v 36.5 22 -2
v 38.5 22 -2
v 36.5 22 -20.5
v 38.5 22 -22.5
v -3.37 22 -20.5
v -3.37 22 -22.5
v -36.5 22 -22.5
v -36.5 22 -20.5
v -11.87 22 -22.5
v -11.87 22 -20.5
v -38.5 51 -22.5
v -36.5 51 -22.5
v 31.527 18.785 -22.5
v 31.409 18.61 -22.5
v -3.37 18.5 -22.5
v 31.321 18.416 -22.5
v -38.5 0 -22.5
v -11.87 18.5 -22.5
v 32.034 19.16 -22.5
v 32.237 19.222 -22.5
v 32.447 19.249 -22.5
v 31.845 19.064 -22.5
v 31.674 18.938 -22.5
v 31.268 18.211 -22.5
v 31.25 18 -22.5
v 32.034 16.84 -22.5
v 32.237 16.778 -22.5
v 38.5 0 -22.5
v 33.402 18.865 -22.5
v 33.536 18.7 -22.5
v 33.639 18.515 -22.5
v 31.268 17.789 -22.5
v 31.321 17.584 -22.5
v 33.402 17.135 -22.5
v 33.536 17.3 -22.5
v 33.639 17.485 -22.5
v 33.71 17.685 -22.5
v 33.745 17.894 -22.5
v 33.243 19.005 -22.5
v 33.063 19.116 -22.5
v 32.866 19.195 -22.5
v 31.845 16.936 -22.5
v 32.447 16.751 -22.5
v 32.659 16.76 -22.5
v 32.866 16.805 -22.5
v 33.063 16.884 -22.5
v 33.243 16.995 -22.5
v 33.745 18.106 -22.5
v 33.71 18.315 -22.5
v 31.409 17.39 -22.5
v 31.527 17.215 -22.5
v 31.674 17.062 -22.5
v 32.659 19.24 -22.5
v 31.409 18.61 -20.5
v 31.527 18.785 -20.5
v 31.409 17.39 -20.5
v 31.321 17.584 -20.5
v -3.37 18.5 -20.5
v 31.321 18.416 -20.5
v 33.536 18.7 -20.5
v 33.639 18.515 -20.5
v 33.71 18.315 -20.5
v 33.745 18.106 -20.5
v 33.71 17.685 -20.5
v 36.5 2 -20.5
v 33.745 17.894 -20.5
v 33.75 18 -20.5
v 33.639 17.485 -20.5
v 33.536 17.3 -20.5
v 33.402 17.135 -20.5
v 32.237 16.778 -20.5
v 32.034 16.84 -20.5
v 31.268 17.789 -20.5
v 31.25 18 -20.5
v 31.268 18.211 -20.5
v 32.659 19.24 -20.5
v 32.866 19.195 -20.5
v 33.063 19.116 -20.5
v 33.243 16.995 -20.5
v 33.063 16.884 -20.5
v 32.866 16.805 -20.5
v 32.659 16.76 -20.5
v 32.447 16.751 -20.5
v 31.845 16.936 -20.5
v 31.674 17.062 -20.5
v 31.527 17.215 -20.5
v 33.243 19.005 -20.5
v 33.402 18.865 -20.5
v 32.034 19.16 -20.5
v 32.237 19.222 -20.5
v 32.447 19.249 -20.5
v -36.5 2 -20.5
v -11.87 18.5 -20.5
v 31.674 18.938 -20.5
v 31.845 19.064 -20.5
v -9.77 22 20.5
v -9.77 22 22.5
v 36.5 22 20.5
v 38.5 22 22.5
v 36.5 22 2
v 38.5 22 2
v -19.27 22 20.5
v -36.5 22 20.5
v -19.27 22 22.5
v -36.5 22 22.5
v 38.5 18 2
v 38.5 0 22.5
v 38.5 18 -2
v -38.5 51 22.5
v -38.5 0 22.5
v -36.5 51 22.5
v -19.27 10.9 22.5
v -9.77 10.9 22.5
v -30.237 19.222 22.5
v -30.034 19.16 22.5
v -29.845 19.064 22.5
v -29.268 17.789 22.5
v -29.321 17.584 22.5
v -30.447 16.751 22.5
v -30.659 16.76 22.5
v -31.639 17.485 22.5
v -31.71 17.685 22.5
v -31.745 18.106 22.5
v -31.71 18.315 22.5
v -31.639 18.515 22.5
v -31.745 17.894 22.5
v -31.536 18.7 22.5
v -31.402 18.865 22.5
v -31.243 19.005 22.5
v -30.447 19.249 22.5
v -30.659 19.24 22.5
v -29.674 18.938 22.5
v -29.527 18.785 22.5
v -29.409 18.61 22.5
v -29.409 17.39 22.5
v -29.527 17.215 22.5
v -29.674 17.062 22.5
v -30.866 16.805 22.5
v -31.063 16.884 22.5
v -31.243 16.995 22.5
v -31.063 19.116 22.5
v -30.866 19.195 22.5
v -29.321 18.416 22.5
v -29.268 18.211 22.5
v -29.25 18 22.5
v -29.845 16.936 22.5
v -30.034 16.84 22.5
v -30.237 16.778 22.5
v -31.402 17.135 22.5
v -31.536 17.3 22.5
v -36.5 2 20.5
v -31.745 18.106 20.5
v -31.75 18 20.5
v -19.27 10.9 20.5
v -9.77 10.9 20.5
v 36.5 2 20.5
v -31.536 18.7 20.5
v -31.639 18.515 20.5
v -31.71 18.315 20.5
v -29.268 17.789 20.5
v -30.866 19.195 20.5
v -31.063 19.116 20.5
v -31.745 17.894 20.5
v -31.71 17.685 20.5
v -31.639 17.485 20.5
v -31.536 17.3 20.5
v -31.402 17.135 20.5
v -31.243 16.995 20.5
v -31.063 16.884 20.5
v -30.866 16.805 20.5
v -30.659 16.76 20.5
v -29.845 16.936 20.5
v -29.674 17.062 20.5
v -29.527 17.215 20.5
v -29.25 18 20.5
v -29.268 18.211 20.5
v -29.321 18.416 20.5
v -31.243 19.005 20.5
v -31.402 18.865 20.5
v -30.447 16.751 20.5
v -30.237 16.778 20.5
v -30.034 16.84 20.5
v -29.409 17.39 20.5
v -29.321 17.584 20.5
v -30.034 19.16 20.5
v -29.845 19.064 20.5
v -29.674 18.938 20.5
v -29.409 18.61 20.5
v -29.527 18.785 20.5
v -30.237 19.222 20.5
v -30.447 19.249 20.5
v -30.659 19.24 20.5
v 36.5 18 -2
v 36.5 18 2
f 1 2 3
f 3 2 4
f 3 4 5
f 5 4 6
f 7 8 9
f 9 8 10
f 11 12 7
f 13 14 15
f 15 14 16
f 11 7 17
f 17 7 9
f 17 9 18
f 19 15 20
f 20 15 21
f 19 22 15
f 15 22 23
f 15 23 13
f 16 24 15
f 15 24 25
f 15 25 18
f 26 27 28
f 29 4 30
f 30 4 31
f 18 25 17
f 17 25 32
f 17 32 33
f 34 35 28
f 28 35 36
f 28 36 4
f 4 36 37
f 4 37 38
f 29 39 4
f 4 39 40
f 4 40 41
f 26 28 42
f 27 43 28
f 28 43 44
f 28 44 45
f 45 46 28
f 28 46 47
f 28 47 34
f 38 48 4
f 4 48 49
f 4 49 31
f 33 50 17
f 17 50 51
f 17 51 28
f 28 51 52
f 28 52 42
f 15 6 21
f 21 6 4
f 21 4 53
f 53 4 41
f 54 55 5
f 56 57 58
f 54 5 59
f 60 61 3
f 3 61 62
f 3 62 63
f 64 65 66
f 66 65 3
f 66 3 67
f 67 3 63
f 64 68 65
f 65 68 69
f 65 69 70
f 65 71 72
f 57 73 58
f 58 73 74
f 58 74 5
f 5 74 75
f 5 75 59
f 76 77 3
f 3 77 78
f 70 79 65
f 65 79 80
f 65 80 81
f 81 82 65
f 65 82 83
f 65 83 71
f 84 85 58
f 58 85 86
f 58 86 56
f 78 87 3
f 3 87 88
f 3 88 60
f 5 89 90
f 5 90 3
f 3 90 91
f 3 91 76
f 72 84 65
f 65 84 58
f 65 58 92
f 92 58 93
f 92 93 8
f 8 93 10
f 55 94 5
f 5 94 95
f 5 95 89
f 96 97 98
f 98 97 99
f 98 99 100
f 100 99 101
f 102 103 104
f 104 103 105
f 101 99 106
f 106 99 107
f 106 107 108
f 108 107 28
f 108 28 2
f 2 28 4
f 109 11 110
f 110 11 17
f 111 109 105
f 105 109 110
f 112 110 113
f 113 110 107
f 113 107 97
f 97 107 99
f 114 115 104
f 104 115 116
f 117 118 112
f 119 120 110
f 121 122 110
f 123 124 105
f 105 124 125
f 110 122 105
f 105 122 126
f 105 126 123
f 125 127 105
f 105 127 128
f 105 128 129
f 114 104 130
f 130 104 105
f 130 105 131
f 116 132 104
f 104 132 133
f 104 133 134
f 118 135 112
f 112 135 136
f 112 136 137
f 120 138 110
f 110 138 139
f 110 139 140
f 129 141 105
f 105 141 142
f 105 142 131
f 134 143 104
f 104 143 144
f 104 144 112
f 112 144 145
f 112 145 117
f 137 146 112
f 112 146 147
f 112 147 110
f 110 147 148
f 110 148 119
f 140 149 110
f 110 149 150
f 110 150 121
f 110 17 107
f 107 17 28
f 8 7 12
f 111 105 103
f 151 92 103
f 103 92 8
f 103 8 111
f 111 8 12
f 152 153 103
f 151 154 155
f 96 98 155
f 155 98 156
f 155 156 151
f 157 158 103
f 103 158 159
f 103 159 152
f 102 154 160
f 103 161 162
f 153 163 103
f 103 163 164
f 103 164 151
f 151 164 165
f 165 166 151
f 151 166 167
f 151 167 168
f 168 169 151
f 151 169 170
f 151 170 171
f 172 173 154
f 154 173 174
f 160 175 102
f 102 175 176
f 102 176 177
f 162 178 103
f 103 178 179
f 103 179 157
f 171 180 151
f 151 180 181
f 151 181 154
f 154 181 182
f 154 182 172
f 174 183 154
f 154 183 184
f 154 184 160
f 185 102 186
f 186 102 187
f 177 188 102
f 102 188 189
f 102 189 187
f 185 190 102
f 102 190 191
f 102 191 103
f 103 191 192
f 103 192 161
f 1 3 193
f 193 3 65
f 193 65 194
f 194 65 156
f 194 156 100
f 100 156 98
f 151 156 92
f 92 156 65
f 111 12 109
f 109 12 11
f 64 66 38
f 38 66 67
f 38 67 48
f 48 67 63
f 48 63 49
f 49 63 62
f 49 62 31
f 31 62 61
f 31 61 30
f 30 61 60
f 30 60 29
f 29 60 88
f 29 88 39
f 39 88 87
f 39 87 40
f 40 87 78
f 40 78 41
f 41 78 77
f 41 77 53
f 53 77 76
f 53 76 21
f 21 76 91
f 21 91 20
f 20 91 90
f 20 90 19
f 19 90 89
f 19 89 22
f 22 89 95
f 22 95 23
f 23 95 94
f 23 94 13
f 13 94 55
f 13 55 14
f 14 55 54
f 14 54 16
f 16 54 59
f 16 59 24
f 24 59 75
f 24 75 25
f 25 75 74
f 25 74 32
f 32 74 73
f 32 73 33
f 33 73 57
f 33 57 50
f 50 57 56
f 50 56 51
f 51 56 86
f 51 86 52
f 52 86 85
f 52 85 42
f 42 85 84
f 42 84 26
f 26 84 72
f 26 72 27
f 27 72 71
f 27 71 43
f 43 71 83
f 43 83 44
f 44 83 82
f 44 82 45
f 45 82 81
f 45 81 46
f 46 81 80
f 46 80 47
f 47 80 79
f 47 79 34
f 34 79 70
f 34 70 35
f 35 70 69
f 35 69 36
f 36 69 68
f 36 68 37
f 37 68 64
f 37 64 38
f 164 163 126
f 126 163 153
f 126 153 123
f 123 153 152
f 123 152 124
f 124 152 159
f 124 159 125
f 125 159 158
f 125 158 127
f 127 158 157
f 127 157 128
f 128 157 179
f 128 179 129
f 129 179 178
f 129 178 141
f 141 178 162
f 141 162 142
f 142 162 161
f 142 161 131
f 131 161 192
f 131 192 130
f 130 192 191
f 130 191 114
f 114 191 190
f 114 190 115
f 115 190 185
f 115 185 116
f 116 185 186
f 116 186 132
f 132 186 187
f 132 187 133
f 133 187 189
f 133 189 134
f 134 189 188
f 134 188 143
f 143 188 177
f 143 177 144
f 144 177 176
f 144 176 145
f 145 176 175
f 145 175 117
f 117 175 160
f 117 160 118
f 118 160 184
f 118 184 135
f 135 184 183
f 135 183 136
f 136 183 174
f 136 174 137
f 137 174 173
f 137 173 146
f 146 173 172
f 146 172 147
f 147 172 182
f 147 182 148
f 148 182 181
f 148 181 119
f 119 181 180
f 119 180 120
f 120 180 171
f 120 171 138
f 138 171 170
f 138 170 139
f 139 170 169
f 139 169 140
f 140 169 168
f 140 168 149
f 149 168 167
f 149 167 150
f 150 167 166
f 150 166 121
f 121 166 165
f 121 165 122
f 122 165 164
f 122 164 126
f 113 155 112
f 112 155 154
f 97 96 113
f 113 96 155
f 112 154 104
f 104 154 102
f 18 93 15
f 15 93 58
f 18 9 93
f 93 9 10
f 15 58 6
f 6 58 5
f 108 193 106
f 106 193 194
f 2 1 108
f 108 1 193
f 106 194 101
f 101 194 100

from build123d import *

# Parameters (mm, degrees)
SKETCH1_W           = 77
SKETCH1_H           = 45
BOSS_EXTRUDE1_DEPTH = 2
SKETCH2_W           = 77
SKETCH2_H           = 45
SKETCH2_W_2         = 73
SKETCH2_H_2         = 41
BOSS_EXTRUDE2_DEPTH = 20
SKETCH3_W           = 2
SKETCH3_H           = 45
BOSS_EXTRUDE3_DEPTH = 29
SKETCH4_R           = 1.25
CUT_EXTRUDE1_DEPTH  = 2
SKETCH5_R           = 1.25
CUT_EXTRUDE2_DEPTH  = 2
SKETCH6_W           = 9.5
SKETCH6_H           = 11.1
CUT_EXTRUDE3_DEPTH  = 2
SKETCH7_W           = 8.5
SKETCH7_H           = 3.5
CUT_EXTRUDE4_DEPTH  = 2
SKETCH8_W           = 4
SKETCH8_H           = 4
CUT_EXTRUDE5_DEPTH  = 2


with BuildPart() as part:
    # Sketch1 → Boss-Extrude1 (new body)
    with BuildSketch(Plane(origin=(0, 0, 0), x_dir=(1, 0, 0), z_dir=(0, 1, 0))):
        Rectangle(SKETCH1_W, SKETCH1_H)
    extrude(amount=BOSS_EXTRUDE1_DEPTH)

    # Sketch2 → Boss-Extrude2 (add)
    with BuildSketch(Plane(origin=(0, 2, 0), x_dir=(1, 0, 0), z_dir=(0, 1, 0))):
        Rectangle(SKETCH2_W, SKETCH2_H)
        Rectangle(SKETCH2_W_2, SKETCH2_H_2, mode=Mode.SUBTRACT)
    extrude(amount=BOSS_EXTRUDE2_DEPTH)

    # Sketch3 → Boss-Extrude3 (add)
    with BuildSketch(Plane(origin=(0, 22, 0), x_dir=(1, 0, 0), z_dir=(0, 1, 0))):
        with Locations((-37.5, 0)):
            Rectangle(SKETCH3_W, SKETCH3_H)
    extrude(amount=BOSS_EXTRUDE3_DEPTH)

    # Sketch4 → Cut-Extrude1 (cut)
    with BuildSketch(Plane(origin=(0, 0, -22.5), x_dir=(-1, 0, 0), z_dir=(0, 0, -1))):
        with Locations((-32.5, 18)):
            Circle(SKETCH4_R)
    extrude(amount=-CUT_EXTRUDE1_DEPTH, mode=Mode.SUBTRACT)

    # Sketch5 → Cut-Extrude2 (cut)
    with BuildSketch(Plane.XY.offset(22.5)):
        with Locations((-30.5, 18)):
            Circle(SKETCH5_R)
    extrude(amount=-CUT_EXTRUDE2_DEPTH, mode=Mode.SUBTRACT)

    # Sketch6 → Cut-Extrude3 (cut)
    with BuildSketch(Plane.XY.offset(22.5)):
        with Locations((-14.52, 16.45)):
            Rectangle(SKETCH6_W, SKETCH6_H)
    extrude(amount=-CUT_EXTRUDE3_DEPTH, mode=Mode.SUBTRACT)

    # Sketch7 → Cut-Extrude4 (cut)
    with BuildSketch(Plane(origin=(0, 0, -22.5), x_dir=(-1, 0, 0), z_dir=(0, 0, -1))):
        with Locations((7.62, 20.25)):
            Rectangle(SKETCH7_W, SKETCH7_H)
    extrude(amount=-CUT_EXTRUDE4_DEPTH, mode=Mode.SUBTRACT)

    # Sketch8 → Cut-Extrude5 (cut)
    with BuildSketch(Plane(origin=(38.5, 0, 0), x_dir=(0, 0, -1), z_dir=(1, 0, 0))):
        with Locations((0, 20)):
            Rectangle(SKETCH8_W, SKETCH8_H)
    extrude(amount=-CUT_EXTRUDE5_DEPTH, mode=Mode.SUBTRACT)


solid = part.part
